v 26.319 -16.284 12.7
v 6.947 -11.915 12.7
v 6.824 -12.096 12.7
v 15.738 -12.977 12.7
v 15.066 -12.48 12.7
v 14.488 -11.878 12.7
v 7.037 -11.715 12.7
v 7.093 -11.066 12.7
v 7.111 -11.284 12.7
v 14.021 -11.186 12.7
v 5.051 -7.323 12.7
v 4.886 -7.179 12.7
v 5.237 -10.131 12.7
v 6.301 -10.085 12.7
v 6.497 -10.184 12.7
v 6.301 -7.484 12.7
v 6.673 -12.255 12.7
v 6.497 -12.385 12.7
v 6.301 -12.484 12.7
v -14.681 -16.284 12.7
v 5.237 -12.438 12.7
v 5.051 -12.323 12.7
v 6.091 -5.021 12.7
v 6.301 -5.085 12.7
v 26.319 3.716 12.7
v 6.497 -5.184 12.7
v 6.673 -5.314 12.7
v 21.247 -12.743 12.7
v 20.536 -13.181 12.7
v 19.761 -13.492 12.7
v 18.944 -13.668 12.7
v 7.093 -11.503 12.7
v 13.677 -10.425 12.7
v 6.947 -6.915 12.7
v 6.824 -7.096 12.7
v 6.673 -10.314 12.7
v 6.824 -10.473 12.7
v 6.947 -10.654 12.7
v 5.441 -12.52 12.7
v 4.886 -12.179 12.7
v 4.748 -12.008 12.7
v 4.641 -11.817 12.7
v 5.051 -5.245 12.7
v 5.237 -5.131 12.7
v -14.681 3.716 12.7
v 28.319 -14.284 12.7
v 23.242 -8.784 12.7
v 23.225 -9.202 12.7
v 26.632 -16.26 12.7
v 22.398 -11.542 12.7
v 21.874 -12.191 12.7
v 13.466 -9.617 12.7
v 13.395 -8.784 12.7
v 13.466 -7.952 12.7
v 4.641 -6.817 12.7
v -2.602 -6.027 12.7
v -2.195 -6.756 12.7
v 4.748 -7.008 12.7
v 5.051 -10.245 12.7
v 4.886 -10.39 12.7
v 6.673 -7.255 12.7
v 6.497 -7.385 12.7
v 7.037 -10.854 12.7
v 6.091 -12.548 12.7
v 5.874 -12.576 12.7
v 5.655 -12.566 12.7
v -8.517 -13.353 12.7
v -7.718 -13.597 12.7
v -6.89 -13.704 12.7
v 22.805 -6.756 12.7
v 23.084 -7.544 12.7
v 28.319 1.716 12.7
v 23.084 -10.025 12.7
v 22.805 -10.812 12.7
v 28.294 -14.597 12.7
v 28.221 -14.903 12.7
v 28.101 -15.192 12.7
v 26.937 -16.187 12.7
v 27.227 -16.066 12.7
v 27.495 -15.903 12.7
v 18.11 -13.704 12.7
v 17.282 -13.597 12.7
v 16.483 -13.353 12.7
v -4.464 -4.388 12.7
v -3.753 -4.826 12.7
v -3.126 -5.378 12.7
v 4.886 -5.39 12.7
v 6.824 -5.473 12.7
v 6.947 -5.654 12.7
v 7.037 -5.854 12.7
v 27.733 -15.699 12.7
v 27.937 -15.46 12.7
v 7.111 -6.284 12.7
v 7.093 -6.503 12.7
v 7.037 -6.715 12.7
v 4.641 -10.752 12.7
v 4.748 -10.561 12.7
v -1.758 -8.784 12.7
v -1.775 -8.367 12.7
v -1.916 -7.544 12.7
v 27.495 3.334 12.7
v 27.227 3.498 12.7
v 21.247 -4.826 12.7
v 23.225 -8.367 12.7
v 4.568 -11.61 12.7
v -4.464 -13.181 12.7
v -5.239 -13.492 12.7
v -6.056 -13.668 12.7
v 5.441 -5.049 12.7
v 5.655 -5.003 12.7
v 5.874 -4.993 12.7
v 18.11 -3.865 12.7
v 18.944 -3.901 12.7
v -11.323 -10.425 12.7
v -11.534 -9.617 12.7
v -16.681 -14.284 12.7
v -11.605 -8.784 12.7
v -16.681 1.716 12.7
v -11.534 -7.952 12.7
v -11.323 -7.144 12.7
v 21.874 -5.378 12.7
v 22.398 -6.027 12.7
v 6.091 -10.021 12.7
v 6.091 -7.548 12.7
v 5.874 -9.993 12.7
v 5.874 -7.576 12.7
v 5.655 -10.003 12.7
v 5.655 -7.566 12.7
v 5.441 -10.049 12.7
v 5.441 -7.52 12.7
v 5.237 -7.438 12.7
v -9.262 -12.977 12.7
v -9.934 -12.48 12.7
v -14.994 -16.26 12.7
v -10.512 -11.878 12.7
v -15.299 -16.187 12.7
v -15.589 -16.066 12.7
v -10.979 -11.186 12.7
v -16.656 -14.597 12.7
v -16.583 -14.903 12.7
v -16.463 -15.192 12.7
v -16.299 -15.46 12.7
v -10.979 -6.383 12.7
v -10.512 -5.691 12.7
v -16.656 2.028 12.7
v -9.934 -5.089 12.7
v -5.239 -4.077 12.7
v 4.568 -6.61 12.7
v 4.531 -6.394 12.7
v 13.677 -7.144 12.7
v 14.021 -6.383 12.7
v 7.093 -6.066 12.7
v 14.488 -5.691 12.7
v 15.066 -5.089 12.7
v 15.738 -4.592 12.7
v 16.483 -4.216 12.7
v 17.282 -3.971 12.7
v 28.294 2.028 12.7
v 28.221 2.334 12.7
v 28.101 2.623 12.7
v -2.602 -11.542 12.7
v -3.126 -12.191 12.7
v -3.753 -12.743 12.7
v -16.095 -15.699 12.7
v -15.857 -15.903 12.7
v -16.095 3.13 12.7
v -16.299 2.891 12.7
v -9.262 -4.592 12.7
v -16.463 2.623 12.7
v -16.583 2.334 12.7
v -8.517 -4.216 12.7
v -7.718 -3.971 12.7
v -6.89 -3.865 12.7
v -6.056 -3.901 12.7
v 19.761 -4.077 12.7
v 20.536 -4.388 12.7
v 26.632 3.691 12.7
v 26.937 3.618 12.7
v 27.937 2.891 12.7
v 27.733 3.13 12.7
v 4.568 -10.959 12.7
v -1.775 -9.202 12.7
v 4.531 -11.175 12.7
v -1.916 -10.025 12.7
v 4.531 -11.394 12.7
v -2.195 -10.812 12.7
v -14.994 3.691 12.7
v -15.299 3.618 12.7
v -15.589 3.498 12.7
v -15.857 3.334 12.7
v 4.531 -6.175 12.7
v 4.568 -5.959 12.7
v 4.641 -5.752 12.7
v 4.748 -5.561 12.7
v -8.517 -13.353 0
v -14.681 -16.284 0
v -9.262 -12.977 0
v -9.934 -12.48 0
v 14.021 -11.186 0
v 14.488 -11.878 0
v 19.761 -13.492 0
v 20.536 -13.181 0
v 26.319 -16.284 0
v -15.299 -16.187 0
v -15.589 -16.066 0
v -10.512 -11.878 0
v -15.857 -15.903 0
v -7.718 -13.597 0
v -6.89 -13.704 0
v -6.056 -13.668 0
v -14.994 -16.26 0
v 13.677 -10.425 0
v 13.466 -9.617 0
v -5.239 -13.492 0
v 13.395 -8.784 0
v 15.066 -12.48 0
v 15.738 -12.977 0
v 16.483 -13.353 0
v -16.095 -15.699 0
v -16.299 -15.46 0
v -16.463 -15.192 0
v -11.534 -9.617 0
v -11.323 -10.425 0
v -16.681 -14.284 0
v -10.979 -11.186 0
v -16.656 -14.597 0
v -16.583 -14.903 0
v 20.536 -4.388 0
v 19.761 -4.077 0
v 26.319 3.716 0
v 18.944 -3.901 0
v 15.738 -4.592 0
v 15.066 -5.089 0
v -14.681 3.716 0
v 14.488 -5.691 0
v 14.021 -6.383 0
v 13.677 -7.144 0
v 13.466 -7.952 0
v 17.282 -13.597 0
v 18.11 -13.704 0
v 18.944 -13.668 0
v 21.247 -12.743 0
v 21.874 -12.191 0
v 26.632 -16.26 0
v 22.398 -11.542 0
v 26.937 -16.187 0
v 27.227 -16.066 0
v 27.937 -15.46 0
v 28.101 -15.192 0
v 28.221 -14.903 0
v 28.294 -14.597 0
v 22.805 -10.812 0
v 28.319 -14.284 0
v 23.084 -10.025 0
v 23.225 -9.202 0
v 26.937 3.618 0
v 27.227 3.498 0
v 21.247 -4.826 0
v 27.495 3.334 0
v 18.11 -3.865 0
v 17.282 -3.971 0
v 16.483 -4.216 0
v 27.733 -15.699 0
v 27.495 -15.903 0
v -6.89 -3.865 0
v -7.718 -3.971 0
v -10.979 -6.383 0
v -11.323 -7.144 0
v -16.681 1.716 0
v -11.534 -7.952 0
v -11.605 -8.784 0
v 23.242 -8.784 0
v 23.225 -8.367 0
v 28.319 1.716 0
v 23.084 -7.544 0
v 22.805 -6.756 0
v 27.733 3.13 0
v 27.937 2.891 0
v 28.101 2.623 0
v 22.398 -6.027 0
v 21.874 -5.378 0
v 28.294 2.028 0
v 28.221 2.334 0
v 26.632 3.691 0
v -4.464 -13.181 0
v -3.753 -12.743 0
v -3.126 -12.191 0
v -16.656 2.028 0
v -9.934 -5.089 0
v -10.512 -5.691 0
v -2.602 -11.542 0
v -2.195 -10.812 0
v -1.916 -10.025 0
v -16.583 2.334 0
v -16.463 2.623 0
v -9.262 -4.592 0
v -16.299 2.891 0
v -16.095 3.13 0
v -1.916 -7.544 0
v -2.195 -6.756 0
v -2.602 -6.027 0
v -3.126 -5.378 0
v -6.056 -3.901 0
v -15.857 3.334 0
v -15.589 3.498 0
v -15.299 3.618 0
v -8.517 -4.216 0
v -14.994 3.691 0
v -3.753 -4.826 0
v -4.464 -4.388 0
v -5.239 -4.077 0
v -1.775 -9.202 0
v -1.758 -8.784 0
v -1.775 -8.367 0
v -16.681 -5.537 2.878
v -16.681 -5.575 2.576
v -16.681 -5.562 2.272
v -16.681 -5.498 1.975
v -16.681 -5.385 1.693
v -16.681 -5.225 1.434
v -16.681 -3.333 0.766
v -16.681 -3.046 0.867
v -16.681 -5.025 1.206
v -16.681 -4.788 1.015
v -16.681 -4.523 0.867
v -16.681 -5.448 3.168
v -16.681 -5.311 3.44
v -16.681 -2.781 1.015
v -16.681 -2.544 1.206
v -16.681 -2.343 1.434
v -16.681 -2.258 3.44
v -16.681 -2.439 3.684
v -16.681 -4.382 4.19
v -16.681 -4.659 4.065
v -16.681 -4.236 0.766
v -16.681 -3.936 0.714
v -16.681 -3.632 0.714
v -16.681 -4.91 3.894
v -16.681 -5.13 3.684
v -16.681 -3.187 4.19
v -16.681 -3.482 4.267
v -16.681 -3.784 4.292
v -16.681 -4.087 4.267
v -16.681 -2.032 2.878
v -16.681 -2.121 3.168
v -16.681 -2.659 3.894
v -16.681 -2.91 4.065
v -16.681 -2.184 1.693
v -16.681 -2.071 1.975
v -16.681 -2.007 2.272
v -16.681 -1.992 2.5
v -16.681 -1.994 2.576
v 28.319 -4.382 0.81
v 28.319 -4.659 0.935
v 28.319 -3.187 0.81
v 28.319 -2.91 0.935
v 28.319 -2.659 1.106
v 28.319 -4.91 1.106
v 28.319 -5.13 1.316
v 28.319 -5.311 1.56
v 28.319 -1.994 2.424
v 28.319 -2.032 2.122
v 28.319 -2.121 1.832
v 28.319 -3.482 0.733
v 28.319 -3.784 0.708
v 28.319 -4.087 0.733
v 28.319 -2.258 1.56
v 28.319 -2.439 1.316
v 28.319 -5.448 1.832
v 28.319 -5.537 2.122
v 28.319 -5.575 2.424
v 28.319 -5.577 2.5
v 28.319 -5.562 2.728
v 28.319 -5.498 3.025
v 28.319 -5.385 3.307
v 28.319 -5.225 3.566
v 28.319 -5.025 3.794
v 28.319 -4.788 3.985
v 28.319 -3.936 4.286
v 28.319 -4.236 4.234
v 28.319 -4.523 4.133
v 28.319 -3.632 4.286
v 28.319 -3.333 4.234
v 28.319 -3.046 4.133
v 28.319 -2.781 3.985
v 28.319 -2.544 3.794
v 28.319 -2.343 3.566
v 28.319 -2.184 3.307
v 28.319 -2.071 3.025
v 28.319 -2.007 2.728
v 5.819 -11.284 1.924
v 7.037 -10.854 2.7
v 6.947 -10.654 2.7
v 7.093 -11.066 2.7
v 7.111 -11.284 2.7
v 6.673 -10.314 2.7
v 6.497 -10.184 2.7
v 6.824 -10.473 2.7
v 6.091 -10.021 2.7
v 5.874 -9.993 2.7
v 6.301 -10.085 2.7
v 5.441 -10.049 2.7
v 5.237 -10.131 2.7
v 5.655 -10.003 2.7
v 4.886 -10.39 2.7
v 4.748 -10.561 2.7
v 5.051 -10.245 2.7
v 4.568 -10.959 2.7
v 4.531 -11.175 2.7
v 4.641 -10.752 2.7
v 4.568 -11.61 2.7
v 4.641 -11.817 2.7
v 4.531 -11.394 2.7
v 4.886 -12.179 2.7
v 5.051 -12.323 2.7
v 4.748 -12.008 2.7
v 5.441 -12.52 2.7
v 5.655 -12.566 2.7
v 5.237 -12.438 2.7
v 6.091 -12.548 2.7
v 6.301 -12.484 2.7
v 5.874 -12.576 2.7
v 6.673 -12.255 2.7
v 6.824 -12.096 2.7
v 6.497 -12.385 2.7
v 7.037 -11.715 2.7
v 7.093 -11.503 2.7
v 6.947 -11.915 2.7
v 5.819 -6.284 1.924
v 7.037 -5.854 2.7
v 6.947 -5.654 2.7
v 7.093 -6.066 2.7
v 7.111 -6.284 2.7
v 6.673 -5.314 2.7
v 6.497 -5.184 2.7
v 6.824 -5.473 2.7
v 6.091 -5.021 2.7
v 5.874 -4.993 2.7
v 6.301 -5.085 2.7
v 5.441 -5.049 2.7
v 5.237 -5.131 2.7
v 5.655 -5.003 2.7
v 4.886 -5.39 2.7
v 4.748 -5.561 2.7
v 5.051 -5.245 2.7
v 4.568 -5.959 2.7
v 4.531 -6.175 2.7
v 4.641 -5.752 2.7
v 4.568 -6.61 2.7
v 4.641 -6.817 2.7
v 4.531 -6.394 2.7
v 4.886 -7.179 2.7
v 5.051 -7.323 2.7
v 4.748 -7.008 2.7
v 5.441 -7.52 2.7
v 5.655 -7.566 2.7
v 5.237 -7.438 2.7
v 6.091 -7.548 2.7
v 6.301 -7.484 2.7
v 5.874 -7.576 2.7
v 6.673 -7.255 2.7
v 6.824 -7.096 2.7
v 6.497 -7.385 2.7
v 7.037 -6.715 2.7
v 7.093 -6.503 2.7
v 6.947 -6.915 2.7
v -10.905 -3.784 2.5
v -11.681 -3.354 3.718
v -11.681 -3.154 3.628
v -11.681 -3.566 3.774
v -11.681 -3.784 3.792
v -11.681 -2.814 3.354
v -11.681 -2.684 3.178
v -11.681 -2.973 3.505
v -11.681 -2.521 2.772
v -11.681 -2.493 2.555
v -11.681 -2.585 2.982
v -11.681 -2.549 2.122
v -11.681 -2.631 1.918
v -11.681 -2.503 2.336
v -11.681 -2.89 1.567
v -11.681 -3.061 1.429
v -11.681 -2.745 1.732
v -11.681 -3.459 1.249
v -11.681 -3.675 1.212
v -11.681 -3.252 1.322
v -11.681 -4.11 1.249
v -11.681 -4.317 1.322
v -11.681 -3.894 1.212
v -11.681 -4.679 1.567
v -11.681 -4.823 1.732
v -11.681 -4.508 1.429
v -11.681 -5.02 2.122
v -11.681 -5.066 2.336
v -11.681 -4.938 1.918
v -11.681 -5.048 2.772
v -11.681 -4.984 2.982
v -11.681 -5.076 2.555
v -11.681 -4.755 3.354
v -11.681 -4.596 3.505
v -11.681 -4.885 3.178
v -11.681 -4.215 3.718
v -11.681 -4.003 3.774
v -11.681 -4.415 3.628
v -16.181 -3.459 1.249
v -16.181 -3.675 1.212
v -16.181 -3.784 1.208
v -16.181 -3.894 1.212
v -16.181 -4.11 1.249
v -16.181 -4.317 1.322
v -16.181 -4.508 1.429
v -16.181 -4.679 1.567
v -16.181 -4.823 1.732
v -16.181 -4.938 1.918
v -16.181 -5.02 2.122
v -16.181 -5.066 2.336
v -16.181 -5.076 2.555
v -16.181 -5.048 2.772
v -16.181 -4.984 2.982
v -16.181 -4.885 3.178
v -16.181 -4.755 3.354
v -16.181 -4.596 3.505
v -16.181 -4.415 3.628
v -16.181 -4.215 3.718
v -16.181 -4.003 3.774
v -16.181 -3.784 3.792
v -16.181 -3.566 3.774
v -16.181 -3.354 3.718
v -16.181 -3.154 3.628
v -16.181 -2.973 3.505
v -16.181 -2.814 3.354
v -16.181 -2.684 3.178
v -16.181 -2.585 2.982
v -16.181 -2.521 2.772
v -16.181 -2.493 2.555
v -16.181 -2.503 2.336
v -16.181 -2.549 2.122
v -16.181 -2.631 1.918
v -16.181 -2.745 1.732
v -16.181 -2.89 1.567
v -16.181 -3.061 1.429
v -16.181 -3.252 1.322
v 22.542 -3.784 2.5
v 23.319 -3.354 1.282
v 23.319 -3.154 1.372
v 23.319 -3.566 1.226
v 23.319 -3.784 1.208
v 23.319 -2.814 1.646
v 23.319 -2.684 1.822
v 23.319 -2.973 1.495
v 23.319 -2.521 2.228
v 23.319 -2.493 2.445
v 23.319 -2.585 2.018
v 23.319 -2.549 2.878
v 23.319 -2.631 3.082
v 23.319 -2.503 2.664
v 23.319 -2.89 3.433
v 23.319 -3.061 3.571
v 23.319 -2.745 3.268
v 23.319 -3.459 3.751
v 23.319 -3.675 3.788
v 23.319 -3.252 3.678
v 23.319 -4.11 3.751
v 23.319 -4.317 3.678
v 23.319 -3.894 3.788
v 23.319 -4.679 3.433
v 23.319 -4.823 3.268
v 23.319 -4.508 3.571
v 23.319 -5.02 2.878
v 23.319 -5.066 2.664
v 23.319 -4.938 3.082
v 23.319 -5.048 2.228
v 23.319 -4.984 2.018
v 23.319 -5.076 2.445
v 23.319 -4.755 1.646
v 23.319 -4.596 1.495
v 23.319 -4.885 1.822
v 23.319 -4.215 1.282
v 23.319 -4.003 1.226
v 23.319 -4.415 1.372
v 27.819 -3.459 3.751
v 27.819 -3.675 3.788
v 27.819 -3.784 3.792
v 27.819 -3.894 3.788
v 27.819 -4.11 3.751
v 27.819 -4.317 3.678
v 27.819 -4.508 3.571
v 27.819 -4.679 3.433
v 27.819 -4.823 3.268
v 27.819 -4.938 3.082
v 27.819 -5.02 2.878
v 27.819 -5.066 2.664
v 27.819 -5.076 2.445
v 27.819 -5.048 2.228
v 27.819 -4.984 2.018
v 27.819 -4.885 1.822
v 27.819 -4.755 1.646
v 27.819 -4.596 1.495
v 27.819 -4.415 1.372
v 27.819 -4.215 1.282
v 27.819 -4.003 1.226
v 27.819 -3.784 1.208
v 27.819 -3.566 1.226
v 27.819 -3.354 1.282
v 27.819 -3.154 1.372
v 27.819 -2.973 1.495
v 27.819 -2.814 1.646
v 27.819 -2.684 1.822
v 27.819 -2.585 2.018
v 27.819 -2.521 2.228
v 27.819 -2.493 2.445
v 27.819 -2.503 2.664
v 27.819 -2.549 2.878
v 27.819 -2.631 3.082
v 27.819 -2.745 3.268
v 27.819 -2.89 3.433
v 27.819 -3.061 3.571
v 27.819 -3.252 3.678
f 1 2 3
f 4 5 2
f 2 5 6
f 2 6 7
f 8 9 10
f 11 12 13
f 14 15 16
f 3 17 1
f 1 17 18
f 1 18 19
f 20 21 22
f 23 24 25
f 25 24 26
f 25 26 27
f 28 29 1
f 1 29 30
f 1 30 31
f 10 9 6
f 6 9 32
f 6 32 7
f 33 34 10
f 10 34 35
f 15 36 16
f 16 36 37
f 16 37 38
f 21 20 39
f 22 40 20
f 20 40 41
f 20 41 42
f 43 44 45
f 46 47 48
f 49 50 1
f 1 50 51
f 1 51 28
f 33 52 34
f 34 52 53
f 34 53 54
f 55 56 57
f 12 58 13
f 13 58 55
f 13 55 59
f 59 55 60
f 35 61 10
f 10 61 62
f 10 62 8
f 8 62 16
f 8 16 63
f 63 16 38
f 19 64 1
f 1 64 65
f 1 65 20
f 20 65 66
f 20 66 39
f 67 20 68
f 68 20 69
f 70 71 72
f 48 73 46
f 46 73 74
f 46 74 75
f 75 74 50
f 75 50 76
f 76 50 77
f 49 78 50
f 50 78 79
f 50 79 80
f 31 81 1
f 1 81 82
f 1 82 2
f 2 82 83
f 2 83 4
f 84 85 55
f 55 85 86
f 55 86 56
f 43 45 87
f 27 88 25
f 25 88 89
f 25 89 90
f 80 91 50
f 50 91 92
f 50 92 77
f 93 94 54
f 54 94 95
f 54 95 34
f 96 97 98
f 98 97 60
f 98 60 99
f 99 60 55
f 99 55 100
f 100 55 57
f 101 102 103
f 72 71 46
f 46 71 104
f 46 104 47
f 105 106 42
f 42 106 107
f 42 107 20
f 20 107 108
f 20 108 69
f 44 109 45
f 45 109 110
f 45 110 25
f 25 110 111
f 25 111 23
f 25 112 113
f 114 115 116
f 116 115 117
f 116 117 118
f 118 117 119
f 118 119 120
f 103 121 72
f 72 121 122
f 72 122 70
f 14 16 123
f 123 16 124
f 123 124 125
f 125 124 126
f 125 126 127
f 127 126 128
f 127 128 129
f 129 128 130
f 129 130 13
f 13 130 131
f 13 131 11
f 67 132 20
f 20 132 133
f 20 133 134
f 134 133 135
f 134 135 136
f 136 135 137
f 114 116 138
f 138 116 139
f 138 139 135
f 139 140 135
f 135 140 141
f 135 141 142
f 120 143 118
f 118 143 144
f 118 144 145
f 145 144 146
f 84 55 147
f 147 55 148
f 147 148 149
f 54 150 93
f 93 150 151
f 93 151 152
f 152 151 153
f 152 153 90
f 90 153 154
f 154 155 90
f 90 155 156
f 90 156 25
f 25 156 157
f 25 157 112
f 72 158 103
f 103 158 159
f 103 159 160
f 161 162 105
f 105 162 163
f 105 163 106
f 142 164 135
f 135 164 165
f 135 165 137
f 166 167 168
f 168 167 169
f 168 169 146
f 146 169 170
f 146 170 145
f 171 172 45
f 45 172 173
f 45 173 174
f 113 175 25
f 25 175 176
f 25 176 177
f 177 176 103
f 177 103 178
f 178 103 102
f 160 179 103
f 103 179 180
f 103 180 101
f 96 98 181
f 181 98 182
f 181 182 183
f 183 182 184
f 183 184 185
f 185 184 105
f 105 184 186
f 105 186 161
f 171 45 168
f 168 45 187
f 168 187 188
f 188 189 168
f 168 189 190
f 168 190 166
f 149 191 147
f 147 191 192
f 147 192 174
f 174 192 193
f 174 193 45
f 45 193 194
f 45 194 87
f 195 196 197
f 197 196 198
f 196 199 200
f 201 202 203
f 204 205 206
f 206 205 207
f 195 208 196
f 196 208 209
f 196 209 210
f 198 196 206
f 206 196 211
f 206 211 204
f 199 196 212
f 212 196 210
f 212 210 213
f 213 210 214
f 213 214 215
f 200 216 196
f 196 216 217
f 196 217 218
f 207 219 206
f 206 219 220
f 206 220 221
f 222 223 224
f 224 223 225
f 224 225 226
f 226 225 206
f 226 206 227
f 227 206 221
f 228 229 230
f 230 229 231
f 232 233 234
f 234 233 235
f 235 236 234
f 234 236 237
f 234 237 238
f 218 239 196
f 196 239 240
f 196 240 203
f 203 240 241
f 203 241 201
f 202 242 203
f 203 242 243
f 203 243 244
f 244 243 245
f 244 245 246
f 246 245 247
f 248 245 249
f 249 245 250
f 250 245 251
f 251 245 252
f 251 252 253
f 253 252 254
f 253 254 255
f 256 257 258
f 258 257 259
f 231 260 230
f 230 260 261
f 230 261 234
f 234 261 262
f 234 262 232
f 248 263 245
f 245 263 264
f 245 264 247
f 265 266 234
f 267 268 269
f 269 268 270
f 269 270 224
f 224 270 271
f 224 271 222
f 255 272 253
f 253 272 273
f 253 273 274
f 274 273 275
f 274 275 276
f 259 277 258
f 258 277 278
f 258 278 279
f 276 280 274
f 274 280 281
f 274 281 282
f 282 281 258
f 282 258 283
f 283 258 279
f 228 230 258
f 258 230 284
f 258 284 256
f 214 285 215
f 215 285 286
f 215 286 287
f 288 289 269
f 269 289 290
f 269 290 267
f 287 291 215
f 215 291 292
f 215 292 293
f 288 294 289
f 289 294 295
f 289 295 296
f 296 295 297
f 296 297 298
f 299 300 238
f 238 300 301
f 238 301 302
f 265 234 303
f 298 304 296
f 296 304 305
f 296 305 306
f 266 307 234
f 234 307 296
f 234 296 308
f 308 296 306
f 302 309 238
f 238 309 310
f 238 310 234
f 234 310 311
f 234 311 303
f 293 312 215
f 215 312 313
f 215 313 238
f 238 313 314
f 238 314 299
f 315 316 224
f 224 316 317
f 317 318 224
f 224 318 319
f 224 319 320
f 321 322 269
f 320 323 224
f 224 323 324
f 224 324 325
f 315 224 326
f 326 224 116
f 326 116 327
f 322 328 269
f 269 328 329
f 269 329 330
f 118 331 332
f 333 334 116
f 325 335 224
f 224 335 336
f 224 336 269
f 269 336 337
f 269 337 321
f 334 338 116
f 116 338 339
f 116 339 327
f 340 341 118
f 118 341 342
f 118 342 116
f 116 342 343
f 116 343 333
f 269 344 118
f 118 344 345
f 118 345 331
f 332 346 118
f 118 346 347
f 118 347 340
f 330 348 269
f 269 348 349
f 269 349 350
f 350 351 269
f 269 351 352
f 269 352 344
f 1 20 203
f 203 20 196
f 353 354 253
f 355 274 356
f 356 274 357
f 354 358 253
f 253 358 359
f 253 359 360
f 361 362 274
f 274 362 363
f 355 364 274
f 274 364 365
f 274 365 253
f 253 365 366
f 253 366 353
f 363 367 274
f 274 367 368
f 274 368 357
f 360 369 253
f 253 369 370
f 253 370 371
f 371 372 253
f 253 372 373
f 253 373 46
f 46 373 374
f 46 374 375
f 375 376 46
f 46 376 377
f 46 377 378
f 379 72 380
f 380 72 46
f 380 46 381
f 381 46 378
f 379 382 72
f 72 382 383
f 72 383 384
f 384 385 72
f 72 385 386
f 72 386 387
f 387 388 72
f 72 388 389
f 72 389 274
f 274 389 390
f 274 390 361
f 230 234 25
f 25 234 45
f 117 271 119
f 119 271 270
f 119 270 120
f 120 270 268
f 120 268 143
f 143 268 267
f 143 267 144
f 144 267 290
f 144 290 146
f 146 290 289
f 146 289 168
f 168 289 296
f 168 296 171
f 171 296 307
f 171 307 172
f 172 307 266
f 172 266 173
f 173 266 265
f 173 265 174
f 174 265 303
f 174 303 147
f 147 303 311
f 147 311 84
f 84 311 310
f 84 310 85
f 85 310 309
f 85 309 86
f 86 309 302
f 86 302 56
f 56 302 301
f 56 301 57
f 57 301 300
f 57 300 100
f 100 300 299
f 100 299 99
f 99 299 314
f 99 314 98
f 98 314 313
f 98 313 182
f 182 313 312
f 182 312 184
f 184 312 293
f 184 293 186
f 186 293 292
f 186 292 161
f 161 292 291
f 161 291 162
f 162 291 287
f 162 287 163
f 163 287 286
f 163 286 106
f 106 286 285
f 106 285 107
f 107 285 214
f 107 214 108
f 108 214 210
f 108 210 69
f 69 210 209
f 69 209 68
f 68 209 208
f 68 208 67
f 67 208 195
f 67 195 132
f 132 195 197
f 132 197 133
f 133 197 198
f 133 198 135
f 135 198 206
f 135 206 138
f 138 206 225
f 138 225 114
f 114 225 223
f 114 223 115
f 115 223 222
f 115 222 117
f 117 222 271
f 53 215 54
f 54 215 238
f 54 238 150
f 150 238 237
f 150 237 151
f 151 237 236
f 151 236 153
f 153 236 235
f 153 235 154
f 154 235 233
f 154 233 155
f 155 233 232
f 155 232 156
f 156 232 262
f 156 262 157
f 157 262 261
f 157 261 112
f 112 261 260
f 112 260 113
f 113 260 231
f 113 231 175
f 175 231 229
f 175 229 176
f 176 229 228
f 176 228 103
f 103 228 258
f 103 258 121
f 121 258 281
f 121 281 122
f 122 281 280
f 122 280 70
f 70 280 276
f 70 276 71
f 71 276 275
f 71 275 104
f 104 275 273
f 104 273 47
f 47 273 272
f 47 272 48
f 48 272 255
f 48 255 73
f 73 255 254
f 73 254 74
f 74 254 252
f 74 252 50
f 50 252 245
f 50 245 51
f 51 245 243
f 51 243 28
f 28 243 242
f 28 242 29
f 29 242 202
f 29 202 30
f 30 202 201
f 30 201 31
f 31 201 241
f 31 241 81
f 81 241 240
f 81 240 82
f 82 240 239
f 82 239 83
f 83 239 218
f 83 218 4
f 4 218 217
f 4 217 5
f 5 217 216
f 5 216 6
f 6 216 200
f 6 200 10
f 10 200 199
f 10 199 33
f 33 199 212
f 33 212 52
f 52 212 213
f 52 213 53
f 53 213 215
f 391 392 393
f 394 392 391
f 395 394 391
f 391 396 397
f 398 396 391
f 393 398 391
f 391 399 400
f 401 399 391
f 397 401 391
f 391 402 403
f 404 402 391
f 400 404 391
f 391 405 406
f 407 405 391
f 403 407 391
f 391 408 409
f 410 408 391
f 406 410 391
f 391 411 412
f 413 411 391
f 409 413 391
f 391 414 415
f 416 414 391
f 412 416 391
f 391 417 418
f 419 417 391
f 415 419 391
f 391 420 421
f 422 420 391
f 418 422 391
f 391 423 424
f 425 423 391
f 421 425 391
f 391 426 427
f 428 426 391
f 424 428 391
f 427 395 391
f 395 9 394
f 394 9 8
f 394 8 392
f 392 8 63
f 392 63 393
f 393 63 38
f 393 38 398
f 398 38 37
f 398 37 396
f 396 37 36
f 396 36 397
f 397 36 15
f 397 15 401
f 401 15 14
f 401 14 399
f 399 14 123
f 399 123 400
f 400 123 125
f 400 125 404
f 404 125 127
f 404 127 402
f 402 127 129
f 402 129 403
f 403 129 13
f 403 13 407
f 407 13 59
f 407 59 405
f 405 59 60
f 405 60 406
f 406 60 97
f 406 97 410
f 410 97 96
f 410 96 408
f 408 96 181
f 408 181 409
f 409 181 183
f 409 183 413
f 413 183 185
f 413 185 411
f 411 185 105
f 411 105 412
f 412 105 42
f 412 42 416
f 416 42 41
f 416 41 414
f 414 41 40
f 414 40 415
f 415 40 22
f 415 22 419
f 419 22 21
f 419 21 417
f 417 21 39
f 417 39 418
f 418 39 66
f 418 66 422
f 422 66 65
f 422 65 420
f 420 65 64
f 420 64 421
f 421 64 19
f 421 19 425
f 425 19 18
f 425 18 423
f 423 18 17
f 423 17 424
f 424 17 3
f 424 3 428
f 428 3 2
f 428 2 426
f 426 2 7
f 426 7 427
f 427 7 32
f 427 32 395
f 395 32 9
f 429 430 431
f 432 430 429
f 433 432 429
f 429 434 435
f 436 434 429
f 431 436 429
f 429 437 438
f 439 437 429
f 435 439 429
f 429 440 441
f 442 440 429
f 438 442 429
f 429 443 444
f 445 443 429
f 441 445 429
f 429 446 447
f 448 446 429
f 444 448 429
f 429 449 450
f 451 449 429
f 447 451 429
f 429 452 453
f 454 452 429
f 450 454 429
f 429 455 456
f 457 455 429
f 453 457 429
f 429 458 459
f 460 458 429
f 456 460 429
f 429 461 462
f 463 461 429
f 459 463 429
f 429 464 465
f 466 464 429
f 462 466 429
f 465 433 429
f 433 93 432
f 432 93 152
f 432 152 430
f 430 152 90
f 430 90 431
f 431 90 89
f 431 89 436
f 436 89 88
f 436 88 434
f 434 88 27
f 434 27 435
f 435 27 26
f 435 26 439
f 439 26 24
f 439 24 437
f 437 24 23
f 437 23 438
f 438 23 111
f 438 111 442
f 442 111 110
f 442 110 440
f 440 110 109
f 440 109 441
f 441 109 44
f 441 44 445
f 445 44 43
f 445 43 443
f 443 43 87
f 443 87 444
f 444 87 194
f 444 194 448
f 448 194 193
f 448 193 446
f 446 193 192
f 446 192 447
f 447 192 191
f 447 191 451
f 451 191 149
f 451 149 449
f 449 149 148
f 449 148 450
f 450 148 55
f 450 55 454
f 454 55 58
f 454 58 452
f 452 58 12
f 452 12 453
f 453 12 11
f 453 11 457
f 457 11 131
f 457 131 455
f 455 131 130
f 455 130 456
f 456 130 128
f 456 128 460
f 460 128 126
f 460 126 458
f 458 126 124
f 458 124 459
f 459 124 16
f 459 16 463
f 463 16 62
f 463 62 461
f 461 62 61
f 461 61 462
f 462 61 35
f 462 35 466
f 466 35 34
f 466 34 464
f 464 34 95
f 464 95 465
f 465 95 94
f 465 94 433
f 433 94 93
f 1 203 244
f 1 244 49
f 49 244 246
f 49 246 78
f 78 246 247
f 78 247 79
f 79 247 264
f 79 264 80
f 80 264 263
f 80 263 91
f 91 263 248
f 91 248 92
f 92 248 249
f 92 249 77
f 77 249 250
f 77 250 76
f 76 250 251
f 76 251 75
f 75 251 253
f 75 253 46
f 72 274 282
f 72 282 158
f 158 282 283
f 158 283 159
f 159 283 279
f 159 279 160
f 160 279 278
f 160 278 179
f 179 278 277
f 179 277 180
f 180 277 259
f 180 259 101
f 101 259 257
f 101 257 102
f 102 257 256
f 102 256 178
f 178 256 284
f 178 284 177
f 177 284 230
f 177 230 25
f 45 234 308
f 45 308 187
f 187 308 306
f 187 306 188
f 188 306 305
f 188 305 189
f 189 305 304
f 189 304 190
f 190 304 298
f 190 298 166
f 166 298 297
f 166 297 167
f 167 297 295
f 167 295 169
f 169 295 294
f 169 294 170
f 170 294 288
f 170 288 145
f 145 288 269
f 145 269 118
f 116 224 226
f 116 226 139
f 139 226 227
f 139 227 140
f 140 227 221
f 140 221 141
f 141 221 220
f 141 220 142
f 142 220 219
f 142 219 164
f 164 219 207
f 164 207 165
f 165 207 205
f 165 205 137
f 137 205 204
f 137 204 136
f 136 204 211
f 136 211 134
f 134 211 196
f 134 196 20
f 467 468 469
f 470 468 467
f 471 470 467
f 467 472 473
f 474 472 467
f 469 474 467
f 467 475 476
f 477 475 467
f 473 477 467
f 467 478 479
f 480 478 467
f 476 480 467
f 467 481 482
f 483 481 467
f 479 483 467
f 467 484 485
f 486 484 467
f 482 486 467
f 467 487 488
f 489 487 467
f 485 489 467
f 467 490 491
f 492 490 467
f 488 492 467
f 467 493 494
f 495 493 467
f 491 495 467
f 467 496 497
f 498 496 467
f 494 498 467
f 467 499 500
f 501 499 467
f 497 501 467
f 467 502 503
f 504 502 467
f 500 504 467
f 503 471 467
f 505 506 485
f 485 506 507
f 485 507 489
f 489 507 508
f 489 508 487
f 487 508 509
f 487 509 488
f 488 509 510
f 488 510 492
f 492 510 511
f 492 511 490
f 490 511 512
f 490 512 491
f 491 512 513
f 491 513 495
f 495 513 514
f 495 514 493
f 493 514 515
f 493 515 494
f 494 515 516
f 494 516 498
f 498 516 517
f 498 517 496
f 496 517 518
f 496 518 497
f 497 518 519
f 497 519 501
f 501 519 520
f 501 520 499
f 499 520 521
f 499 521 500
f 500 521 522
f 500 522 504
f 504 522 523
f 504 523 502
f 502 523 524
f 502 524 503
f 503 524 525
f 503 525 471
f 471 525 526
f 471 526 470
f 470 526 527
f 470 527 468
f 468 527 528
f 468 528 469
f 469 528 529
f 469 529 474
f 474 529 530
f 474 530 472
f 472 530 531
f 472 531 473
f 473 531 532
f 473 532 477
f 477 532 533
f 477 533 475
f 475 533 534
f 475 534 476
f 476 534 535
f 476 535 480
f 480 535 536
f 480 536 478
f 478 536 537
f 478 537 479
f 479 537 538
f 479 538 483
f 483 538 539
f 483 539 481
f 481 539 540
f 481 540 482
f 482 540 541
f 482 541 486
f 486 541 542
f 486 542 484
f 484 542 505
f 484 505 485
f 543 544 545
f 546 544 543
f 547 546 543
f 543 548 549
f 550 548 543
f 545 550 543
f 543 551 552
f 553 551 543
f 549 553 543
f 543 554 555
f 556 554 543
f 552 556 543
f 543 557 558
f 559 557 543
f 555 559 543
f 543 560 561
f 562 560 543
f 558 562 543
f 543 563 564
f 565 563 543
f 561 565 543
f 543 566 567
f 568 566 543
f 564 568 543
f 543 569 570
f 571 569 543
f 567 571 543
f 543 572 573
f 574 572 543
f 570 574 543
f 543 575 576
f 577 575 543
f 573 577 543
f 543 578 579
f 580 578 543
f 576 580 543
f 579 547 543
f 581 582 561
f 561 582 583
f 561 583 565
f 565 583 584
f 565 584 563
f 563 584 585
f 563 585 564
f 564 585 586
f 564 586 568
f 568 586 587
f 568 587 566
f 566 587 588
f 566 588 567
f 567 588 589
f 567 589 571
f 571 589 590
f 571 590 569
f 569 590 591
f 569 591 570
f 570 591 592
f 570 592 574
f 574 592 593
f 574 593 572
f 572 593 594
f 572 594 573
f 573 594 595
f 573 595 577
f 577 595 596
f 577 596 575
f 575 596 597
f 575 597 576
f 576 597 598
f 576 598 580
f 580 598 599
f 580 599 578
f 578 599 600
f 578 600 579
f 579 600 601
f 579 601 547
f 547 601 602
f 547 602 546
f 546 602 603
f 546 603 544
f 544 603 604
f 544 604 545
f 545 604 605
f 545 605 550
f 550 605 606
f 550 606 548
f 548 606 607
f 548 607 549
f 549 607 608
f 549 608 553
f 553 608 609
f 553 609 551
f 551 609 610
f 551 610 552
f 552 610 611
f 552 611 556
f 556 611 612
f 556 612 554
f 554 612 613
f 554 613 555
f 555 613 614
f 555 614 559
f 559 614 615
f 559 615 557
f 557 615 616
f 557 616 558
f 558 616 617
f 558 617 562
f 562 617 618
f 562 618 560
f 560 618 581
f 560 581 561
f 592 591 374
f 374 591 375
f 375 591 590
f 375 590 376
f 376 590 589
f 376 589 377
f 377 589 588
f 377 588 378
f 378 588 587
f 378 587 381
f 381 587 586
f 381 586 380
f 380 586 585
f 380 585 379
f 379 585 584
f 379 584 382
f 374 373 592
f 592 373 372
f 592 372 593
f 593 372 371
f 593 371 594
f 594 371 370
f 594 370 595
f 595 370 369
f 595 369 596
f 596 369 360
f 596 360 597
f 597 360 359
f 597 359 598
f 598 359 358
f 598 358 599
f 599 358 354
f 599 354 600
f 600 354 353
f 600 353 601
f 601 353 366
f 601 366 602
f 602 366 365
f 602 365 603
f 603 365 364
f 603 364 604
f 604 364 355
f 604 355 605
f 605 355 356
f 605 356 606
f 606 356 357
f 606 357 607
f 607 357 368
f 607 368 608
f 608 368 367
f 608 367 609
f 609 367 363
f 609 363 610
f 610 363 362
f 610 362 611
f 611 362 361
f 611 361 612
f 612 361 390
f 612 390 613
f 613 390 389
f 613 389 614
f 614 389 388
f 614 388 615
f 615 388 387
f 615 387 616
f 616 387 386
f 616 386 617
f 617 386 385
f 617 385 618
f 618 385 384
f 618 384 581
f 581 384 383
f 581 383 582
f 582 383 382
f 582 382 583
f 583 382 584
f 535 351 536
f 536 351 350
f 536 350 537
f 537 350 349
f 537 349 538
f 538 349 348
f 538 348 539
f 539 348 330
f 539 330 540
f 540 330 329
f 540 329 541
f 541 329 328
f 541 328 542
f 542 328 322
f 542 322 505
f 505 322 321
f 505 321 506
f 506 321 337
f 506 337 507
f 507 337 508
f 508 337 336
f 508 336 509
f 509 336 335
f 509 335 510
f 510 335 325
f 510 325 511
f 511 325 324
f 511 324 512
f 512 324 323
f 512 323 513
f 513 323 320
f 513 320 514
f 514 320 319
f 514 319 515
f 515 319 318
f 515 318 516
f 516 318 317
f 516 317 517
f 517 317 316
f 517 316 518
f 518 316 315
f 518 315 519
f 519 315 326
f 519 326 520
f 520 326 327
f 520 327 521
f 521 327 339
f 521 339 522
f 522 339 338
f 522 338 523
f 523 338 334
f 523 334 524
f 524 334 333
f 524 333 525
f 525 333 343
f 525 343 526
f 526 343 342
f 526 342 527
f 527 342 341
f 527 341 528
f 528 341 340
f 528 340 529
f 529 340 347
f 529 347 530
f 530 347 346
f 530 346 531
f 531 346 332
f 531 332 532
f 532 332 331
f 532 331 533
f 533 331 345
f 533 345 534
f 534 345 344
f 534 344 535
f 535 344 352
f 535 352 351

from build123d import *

# Parameters (mm, degrees)
SKETCH1_W                       = 45
SKETCH1_H                       = 20
SKETCH1_R                       = 4.9235
BOSS_EXTRUDE1_DEPTH             = 12.7
TAP_DRILL_FOR_M3X0_5_TAP1_D     = 2.584625
TAP_DRILL_FOR_M3X0_5_TAP1_DEPTH = 10
TAP_DRILL_FOR_M3X0_5_TAP1_TIP   = 0.776499689
FILLET1_R                       = 2
CHAMFER1_SIZE                   = 0.5


with BuildPart() as part:
    # Sketch1 → Boss-Extrude1 (new body)
    with BuildSketch(Plane.XY):
        with Locations((5.818965517, -6.284482759)):
            Rectangle(SKETCH1_W, SKETCH1_H)
        with Locations((-6.681034483, -8.784482759)):
            Circle(SKETCH1_R, mode=Mode.SUBTRACT)
        with Locations((18.318965517, -8.784482759)):
            Circle(SKETCH1_R, mode=Mode.SUBTRACT)
    extrude(amount=BOSS_EXTRUDE1_DEPTH)

    # Tap Drill for M3x0.5 Tap1
    with Locations(Plane.XY.offset(12.7)):
        with Locations((5.818965517, -6.284482759), (5.818965517, -11.284482759)):
            Hole(TAP_DRILL_FOR_M3X0_5_TAP1_D / 2, depth=TAP_DRILL_FOR_M3X0_5_TAP1_DEPTH)
            with Locations((0, 0, -(TAP_DRILL_FOR_M3X0_5_TAP1_DEPTH + TAP_DRILL_FOR_M3X0_5_TAP1_TIP / 2))):  # 118° drill point
                Cone(0, TAP_DRILL_FOR_M3X0_5_TAP1_D / 2, TAP_DRILL_FOR_M3X0_5_TAP1_TIP, mode=Mode.SUBTRACT)

    # Fillet1
    fillet1_edges = [part.edges().sort_by_distance(p)[0] for p in [
        (-16.681034483, 3.715517241, 6.35),
        (28.318965517, 3.715517241, 6.35),
        (28.318965517, -16.284482759, 6.35),
        (-16.681034483, -16.284482759, 6.35),
    ]]
    fillet(fillet1_edges, radius=FILLET1_R)

    # Sketch8 → Tap Drill for M3x0.5 Tap2 (revolve, cut)
    with BuildSketch(Plane(origin=(-16.681034483, -3.784482759, 2.5), x_dir=(0, 0, 1), z_dir=(0, 1, 0))):
        Polygon((0, 0), (0, 5.776499689), (1.2923125, 5), (1.2923125, 0), align=None)
    tap_drill_for_m3x0_5_tap2 = revolve(axis=Axis((-23.031034483, -3.784482759, 2.5), (1, 0, 0)), mode=Mode.SUBTRACT)

    # Mirror3: Tap Drill for M3x0.5 Tap2 across plane
    add(tap_drill_for_m3x0_5_tap2.mirror(Plane(origin=(5.818965517, 0, 0), x_dir=(0, 0, 1), z_dir=(1, 0, 0))), mode=Mode.SUBTRACT)

    # Chamfer1
    chamfer1_edges = [part.edges().sort_by_distance(p)[0] for p in [
        (-16.681034483, -3.784482759, 1.2076875),
        (28.318965517, -3.784482759, 1.2076875),
    ]]
    chamfer(chamfer1_edges, length=CHAMFER1_SIZE)


solid = part.part
